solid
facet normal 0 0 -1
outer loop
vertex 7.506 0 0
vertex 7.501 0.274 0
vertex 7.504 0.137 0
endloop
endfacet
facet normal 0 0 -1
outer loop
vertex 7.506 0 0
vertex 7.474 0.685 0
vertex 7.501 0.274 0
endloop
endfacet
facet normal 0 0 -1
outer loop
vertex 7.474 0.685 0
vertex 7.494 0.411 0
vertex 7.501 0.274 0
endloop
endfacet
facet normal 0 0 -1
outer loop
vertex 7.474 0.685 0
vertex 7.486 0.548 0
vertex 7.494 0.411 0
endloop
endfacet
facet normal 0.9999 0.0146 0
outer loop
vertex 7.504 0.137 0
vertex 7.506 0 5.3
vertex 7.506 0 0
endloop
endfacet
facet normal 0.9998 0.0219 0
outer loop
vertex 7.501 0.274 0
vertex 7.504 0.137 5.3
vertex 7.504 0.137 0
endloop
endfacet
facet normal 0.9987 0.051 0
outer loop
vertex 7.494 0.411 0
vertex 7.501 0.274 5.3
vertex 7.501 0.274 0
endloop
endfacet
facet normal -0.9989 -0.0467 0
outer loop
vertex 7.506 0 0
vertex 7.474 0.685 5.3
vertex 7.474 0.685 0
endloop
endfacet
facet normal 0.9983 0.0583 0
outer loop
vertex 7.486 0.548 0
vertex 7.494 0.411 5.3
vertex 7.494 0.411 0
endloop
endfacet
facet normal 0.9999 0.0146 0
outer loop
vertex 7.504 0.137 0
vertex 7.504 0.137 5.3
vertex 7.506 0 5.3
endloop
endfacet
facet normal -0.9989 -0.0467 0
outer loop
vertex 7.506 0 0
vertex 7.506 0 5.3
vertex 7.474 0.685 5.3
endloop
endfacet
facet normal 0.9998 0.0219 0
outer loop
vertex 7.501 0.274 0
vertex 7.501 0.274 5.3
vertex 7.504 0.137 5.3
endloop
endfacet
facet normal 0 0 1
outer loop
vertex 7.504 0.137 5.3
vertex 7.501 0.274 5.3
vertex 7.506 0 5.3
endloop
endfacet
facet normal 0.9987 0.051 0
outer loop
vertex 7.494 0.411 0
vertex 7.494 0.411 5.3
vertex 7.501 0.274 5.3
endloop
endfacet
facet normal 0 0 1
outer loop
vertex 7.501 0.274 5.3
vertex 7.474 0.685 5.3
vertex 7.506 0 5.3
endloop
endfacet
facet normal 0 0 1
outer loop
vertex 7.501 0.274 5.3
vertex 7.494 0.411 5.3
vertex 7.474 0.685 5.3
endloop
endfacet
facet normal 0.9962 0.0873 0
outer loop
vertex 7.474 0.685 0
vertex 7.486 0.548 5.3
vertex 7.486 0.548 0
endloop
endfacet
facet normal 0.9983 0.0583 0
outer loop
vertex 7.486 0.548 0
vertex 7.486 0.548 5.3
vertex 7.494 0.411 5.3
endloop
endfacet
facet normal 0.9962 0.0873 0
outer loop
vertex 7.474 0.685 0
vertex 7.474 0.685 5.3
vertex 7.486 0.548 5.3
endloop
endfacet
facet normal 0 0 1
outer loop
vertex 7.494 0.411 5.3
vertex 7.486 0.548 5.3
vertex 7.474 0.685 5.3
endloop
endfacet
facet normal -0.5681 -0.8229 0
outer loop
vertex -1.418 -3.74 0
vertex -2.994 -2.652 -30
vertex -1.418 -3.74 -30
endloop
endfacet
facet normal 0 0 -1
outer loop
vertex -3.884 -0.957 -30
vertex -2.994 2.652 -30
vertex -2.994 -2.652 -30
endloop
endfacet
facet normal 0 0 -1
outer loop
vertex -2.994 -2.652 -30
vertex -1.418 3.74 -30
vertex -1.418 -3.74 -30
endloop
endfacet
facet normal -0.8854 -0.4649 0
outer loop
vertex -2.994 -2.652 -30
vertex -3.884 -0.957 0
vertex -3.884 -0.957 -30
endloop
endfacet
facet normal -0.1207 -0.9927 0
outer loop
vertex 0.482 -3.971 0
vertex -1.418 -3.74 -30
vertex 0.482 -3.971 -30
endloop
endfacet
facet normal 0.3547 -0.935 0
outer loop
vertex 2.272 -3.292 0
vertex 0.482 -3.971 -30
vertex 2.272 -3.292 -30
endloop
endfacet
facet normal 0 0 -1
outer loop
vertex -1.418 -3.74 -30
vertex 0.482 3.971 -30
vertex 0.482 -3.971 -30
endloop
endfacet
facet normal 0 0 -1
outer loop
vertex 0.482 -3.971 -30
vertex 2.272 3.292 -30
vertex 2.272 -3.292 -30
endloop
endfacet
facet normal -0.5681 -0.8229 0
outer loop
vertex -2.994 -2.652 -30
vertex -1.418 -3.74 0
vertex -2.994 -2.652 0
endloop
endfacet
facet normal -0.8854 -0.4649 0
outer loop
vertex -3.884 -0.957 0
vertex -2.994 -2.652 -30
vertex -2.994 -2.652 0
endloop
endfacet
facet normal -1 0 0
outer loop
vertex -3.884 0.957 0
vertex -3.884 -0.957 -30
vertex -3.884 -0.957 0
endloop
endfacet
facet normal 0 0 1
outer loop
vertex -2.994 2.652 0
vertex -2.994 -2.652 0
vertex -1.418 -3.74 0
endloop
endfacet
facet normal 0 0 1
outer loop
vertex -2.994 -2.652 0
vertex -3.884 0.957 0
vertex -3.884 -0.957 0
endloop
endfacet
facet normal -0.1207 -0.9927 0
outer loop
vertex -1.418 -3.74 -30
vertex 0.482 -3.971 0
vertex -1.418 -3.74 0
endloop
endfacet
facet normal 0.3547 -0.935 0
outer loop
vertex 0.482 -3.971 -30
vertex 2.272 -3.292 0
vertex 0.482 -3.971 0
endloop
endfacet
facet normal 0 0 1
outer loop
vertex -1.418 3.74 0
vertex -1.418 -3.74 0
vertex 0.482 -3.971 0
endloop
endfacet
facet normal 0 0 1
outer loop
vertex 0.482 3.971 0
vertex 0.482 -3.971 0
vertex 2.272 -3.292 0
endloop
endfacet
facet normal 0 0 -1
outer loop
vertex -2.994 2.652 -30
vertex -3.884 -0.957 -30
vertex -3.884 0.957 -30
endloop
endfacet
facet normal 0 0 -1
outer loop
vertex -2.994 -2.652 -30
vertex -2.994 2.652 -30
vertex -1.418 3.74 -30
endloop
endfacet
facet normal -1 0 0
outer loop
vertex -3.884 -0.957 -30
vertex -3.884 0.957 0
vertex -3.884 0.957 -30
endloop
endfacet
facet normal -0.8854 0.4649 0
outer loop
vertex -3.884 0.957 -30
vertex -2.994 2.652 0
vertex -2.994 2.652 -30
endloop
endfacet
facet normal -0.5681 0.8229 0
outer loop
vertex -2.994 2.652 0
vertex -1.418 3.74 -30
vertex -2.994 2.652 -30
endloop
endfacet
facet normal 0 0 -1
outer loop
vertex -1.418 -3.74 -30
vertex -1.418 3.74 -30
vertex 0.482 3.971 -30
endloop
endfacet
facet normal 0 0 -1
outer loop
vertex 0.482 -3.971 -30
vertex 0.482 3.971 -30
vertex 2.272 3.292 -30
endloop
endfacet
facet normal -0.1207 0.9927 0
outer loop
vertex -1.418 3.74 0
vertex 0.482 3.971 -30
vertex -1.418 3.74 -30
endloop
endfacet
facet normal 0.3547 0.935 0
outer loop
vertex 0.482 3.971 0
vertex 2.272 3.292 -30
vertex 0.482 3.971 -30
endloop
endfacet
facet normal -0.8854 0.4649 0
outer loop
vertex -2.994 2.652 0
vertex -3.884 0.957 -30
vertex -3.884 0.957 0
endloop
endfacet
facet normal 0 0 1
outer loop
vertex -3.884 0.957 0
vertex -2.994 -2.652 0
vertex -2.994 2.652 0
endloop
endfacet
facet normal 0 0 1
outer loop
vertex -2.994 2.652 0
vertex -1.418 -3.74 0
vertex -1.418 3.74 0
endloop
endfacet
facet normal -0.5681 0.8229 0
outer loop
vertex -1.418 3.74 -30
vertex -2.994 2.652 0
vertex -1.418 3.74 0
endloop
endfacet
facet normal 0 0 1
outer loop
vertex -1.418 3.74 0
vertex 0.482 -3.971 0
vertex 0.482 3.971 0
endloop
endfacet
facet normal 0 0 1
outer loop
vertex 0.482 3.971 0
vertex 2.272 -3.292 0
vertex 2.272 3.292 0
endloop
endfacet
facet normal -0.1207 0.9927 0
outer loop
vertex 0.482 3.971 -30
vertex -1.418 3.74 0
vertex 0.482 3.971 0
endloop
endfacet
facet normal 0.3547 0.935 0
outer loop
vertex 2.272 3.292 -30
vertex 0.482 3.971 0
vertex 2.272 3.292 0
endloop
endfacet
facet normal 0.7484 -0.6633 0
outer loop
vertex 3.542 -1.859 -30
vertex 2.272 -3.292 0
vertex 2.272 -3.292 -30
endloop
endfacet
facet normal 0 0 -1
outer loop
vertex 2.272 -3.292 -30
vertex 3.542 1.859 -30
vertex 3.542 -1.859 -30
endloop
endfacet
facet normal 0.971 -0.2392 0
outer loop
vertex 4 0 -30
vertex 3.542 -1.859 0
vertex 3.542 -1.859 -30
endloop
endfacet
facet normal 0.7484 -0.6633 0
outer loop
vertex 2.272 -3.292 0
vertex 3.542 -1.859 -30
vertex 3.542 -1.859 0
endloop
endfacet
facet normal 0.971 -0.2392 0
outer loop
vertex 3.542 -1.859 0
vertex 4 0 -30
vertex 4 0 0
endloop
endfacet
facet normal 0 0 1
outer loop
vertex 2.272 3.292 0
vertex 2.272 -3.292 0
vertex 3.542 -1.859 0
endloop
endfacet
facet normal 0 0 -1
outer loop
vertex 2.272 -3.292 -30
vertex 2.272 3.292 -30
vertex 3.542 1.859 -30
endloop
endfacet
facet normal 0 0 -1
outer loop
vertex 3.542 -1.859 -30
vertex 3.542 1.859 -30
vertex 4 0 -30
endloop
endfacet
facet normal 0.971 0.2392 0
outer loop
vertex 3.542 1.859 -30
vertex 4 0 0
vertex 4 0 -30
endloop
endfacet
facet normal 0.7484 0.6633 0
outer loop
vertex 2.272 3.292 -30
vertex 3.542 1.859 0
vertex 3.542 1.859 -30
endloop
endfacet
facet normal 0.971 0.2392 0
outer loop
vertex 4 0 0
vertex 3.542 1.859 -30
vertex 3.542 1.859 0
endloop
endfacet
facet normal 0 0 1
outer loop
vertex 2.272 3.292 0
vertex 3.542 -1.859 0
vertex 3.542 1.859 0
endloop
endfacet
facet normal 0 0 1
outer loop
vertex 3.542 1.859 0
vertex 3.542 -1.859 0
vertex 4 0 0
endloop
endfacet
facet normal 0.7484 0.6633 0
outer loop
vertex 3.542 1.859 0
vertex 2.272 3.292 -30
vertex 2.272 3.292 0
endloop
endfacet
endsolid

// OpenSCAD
// OpenSCAD: M8 hex bolt (thread omitted), hex head + cylindrical shank

// Across-flats of hex head
D = 13; // mm

// Regular hexagon circumradius from across-flats: R = D / sqrt(3)
R = D / sqrt(3);

// 2D hexagon points (circumradius R), oriented generically
points_hex = [
    for (i = [0 : 5])
        [
            R * cos(i * 60 * PI / 180),
            R * sin(i * 60 * PI / 180)
        ]
];

// Head: hexagonal prism, thickness 5.3 mm, bottom on z = 0
module head() {
    linear_extrude(height = 5.3, center = false)
        polygon(points = points_hex);
}

// Shank: cylinder, diameter 8 mm (radius 4 mm), length 30 mm
module shank() {
    cylinder(h = 30, r = 4, center = false);
}

// Assemble: head on top (z 0 to 5.3), shank extending to z < 0 (z -30 to 0)
union() {
    head(); // z = 0 .. 5.3
    translate([0, 0, -30])
        shank(); // z = -30 .. 0
}
